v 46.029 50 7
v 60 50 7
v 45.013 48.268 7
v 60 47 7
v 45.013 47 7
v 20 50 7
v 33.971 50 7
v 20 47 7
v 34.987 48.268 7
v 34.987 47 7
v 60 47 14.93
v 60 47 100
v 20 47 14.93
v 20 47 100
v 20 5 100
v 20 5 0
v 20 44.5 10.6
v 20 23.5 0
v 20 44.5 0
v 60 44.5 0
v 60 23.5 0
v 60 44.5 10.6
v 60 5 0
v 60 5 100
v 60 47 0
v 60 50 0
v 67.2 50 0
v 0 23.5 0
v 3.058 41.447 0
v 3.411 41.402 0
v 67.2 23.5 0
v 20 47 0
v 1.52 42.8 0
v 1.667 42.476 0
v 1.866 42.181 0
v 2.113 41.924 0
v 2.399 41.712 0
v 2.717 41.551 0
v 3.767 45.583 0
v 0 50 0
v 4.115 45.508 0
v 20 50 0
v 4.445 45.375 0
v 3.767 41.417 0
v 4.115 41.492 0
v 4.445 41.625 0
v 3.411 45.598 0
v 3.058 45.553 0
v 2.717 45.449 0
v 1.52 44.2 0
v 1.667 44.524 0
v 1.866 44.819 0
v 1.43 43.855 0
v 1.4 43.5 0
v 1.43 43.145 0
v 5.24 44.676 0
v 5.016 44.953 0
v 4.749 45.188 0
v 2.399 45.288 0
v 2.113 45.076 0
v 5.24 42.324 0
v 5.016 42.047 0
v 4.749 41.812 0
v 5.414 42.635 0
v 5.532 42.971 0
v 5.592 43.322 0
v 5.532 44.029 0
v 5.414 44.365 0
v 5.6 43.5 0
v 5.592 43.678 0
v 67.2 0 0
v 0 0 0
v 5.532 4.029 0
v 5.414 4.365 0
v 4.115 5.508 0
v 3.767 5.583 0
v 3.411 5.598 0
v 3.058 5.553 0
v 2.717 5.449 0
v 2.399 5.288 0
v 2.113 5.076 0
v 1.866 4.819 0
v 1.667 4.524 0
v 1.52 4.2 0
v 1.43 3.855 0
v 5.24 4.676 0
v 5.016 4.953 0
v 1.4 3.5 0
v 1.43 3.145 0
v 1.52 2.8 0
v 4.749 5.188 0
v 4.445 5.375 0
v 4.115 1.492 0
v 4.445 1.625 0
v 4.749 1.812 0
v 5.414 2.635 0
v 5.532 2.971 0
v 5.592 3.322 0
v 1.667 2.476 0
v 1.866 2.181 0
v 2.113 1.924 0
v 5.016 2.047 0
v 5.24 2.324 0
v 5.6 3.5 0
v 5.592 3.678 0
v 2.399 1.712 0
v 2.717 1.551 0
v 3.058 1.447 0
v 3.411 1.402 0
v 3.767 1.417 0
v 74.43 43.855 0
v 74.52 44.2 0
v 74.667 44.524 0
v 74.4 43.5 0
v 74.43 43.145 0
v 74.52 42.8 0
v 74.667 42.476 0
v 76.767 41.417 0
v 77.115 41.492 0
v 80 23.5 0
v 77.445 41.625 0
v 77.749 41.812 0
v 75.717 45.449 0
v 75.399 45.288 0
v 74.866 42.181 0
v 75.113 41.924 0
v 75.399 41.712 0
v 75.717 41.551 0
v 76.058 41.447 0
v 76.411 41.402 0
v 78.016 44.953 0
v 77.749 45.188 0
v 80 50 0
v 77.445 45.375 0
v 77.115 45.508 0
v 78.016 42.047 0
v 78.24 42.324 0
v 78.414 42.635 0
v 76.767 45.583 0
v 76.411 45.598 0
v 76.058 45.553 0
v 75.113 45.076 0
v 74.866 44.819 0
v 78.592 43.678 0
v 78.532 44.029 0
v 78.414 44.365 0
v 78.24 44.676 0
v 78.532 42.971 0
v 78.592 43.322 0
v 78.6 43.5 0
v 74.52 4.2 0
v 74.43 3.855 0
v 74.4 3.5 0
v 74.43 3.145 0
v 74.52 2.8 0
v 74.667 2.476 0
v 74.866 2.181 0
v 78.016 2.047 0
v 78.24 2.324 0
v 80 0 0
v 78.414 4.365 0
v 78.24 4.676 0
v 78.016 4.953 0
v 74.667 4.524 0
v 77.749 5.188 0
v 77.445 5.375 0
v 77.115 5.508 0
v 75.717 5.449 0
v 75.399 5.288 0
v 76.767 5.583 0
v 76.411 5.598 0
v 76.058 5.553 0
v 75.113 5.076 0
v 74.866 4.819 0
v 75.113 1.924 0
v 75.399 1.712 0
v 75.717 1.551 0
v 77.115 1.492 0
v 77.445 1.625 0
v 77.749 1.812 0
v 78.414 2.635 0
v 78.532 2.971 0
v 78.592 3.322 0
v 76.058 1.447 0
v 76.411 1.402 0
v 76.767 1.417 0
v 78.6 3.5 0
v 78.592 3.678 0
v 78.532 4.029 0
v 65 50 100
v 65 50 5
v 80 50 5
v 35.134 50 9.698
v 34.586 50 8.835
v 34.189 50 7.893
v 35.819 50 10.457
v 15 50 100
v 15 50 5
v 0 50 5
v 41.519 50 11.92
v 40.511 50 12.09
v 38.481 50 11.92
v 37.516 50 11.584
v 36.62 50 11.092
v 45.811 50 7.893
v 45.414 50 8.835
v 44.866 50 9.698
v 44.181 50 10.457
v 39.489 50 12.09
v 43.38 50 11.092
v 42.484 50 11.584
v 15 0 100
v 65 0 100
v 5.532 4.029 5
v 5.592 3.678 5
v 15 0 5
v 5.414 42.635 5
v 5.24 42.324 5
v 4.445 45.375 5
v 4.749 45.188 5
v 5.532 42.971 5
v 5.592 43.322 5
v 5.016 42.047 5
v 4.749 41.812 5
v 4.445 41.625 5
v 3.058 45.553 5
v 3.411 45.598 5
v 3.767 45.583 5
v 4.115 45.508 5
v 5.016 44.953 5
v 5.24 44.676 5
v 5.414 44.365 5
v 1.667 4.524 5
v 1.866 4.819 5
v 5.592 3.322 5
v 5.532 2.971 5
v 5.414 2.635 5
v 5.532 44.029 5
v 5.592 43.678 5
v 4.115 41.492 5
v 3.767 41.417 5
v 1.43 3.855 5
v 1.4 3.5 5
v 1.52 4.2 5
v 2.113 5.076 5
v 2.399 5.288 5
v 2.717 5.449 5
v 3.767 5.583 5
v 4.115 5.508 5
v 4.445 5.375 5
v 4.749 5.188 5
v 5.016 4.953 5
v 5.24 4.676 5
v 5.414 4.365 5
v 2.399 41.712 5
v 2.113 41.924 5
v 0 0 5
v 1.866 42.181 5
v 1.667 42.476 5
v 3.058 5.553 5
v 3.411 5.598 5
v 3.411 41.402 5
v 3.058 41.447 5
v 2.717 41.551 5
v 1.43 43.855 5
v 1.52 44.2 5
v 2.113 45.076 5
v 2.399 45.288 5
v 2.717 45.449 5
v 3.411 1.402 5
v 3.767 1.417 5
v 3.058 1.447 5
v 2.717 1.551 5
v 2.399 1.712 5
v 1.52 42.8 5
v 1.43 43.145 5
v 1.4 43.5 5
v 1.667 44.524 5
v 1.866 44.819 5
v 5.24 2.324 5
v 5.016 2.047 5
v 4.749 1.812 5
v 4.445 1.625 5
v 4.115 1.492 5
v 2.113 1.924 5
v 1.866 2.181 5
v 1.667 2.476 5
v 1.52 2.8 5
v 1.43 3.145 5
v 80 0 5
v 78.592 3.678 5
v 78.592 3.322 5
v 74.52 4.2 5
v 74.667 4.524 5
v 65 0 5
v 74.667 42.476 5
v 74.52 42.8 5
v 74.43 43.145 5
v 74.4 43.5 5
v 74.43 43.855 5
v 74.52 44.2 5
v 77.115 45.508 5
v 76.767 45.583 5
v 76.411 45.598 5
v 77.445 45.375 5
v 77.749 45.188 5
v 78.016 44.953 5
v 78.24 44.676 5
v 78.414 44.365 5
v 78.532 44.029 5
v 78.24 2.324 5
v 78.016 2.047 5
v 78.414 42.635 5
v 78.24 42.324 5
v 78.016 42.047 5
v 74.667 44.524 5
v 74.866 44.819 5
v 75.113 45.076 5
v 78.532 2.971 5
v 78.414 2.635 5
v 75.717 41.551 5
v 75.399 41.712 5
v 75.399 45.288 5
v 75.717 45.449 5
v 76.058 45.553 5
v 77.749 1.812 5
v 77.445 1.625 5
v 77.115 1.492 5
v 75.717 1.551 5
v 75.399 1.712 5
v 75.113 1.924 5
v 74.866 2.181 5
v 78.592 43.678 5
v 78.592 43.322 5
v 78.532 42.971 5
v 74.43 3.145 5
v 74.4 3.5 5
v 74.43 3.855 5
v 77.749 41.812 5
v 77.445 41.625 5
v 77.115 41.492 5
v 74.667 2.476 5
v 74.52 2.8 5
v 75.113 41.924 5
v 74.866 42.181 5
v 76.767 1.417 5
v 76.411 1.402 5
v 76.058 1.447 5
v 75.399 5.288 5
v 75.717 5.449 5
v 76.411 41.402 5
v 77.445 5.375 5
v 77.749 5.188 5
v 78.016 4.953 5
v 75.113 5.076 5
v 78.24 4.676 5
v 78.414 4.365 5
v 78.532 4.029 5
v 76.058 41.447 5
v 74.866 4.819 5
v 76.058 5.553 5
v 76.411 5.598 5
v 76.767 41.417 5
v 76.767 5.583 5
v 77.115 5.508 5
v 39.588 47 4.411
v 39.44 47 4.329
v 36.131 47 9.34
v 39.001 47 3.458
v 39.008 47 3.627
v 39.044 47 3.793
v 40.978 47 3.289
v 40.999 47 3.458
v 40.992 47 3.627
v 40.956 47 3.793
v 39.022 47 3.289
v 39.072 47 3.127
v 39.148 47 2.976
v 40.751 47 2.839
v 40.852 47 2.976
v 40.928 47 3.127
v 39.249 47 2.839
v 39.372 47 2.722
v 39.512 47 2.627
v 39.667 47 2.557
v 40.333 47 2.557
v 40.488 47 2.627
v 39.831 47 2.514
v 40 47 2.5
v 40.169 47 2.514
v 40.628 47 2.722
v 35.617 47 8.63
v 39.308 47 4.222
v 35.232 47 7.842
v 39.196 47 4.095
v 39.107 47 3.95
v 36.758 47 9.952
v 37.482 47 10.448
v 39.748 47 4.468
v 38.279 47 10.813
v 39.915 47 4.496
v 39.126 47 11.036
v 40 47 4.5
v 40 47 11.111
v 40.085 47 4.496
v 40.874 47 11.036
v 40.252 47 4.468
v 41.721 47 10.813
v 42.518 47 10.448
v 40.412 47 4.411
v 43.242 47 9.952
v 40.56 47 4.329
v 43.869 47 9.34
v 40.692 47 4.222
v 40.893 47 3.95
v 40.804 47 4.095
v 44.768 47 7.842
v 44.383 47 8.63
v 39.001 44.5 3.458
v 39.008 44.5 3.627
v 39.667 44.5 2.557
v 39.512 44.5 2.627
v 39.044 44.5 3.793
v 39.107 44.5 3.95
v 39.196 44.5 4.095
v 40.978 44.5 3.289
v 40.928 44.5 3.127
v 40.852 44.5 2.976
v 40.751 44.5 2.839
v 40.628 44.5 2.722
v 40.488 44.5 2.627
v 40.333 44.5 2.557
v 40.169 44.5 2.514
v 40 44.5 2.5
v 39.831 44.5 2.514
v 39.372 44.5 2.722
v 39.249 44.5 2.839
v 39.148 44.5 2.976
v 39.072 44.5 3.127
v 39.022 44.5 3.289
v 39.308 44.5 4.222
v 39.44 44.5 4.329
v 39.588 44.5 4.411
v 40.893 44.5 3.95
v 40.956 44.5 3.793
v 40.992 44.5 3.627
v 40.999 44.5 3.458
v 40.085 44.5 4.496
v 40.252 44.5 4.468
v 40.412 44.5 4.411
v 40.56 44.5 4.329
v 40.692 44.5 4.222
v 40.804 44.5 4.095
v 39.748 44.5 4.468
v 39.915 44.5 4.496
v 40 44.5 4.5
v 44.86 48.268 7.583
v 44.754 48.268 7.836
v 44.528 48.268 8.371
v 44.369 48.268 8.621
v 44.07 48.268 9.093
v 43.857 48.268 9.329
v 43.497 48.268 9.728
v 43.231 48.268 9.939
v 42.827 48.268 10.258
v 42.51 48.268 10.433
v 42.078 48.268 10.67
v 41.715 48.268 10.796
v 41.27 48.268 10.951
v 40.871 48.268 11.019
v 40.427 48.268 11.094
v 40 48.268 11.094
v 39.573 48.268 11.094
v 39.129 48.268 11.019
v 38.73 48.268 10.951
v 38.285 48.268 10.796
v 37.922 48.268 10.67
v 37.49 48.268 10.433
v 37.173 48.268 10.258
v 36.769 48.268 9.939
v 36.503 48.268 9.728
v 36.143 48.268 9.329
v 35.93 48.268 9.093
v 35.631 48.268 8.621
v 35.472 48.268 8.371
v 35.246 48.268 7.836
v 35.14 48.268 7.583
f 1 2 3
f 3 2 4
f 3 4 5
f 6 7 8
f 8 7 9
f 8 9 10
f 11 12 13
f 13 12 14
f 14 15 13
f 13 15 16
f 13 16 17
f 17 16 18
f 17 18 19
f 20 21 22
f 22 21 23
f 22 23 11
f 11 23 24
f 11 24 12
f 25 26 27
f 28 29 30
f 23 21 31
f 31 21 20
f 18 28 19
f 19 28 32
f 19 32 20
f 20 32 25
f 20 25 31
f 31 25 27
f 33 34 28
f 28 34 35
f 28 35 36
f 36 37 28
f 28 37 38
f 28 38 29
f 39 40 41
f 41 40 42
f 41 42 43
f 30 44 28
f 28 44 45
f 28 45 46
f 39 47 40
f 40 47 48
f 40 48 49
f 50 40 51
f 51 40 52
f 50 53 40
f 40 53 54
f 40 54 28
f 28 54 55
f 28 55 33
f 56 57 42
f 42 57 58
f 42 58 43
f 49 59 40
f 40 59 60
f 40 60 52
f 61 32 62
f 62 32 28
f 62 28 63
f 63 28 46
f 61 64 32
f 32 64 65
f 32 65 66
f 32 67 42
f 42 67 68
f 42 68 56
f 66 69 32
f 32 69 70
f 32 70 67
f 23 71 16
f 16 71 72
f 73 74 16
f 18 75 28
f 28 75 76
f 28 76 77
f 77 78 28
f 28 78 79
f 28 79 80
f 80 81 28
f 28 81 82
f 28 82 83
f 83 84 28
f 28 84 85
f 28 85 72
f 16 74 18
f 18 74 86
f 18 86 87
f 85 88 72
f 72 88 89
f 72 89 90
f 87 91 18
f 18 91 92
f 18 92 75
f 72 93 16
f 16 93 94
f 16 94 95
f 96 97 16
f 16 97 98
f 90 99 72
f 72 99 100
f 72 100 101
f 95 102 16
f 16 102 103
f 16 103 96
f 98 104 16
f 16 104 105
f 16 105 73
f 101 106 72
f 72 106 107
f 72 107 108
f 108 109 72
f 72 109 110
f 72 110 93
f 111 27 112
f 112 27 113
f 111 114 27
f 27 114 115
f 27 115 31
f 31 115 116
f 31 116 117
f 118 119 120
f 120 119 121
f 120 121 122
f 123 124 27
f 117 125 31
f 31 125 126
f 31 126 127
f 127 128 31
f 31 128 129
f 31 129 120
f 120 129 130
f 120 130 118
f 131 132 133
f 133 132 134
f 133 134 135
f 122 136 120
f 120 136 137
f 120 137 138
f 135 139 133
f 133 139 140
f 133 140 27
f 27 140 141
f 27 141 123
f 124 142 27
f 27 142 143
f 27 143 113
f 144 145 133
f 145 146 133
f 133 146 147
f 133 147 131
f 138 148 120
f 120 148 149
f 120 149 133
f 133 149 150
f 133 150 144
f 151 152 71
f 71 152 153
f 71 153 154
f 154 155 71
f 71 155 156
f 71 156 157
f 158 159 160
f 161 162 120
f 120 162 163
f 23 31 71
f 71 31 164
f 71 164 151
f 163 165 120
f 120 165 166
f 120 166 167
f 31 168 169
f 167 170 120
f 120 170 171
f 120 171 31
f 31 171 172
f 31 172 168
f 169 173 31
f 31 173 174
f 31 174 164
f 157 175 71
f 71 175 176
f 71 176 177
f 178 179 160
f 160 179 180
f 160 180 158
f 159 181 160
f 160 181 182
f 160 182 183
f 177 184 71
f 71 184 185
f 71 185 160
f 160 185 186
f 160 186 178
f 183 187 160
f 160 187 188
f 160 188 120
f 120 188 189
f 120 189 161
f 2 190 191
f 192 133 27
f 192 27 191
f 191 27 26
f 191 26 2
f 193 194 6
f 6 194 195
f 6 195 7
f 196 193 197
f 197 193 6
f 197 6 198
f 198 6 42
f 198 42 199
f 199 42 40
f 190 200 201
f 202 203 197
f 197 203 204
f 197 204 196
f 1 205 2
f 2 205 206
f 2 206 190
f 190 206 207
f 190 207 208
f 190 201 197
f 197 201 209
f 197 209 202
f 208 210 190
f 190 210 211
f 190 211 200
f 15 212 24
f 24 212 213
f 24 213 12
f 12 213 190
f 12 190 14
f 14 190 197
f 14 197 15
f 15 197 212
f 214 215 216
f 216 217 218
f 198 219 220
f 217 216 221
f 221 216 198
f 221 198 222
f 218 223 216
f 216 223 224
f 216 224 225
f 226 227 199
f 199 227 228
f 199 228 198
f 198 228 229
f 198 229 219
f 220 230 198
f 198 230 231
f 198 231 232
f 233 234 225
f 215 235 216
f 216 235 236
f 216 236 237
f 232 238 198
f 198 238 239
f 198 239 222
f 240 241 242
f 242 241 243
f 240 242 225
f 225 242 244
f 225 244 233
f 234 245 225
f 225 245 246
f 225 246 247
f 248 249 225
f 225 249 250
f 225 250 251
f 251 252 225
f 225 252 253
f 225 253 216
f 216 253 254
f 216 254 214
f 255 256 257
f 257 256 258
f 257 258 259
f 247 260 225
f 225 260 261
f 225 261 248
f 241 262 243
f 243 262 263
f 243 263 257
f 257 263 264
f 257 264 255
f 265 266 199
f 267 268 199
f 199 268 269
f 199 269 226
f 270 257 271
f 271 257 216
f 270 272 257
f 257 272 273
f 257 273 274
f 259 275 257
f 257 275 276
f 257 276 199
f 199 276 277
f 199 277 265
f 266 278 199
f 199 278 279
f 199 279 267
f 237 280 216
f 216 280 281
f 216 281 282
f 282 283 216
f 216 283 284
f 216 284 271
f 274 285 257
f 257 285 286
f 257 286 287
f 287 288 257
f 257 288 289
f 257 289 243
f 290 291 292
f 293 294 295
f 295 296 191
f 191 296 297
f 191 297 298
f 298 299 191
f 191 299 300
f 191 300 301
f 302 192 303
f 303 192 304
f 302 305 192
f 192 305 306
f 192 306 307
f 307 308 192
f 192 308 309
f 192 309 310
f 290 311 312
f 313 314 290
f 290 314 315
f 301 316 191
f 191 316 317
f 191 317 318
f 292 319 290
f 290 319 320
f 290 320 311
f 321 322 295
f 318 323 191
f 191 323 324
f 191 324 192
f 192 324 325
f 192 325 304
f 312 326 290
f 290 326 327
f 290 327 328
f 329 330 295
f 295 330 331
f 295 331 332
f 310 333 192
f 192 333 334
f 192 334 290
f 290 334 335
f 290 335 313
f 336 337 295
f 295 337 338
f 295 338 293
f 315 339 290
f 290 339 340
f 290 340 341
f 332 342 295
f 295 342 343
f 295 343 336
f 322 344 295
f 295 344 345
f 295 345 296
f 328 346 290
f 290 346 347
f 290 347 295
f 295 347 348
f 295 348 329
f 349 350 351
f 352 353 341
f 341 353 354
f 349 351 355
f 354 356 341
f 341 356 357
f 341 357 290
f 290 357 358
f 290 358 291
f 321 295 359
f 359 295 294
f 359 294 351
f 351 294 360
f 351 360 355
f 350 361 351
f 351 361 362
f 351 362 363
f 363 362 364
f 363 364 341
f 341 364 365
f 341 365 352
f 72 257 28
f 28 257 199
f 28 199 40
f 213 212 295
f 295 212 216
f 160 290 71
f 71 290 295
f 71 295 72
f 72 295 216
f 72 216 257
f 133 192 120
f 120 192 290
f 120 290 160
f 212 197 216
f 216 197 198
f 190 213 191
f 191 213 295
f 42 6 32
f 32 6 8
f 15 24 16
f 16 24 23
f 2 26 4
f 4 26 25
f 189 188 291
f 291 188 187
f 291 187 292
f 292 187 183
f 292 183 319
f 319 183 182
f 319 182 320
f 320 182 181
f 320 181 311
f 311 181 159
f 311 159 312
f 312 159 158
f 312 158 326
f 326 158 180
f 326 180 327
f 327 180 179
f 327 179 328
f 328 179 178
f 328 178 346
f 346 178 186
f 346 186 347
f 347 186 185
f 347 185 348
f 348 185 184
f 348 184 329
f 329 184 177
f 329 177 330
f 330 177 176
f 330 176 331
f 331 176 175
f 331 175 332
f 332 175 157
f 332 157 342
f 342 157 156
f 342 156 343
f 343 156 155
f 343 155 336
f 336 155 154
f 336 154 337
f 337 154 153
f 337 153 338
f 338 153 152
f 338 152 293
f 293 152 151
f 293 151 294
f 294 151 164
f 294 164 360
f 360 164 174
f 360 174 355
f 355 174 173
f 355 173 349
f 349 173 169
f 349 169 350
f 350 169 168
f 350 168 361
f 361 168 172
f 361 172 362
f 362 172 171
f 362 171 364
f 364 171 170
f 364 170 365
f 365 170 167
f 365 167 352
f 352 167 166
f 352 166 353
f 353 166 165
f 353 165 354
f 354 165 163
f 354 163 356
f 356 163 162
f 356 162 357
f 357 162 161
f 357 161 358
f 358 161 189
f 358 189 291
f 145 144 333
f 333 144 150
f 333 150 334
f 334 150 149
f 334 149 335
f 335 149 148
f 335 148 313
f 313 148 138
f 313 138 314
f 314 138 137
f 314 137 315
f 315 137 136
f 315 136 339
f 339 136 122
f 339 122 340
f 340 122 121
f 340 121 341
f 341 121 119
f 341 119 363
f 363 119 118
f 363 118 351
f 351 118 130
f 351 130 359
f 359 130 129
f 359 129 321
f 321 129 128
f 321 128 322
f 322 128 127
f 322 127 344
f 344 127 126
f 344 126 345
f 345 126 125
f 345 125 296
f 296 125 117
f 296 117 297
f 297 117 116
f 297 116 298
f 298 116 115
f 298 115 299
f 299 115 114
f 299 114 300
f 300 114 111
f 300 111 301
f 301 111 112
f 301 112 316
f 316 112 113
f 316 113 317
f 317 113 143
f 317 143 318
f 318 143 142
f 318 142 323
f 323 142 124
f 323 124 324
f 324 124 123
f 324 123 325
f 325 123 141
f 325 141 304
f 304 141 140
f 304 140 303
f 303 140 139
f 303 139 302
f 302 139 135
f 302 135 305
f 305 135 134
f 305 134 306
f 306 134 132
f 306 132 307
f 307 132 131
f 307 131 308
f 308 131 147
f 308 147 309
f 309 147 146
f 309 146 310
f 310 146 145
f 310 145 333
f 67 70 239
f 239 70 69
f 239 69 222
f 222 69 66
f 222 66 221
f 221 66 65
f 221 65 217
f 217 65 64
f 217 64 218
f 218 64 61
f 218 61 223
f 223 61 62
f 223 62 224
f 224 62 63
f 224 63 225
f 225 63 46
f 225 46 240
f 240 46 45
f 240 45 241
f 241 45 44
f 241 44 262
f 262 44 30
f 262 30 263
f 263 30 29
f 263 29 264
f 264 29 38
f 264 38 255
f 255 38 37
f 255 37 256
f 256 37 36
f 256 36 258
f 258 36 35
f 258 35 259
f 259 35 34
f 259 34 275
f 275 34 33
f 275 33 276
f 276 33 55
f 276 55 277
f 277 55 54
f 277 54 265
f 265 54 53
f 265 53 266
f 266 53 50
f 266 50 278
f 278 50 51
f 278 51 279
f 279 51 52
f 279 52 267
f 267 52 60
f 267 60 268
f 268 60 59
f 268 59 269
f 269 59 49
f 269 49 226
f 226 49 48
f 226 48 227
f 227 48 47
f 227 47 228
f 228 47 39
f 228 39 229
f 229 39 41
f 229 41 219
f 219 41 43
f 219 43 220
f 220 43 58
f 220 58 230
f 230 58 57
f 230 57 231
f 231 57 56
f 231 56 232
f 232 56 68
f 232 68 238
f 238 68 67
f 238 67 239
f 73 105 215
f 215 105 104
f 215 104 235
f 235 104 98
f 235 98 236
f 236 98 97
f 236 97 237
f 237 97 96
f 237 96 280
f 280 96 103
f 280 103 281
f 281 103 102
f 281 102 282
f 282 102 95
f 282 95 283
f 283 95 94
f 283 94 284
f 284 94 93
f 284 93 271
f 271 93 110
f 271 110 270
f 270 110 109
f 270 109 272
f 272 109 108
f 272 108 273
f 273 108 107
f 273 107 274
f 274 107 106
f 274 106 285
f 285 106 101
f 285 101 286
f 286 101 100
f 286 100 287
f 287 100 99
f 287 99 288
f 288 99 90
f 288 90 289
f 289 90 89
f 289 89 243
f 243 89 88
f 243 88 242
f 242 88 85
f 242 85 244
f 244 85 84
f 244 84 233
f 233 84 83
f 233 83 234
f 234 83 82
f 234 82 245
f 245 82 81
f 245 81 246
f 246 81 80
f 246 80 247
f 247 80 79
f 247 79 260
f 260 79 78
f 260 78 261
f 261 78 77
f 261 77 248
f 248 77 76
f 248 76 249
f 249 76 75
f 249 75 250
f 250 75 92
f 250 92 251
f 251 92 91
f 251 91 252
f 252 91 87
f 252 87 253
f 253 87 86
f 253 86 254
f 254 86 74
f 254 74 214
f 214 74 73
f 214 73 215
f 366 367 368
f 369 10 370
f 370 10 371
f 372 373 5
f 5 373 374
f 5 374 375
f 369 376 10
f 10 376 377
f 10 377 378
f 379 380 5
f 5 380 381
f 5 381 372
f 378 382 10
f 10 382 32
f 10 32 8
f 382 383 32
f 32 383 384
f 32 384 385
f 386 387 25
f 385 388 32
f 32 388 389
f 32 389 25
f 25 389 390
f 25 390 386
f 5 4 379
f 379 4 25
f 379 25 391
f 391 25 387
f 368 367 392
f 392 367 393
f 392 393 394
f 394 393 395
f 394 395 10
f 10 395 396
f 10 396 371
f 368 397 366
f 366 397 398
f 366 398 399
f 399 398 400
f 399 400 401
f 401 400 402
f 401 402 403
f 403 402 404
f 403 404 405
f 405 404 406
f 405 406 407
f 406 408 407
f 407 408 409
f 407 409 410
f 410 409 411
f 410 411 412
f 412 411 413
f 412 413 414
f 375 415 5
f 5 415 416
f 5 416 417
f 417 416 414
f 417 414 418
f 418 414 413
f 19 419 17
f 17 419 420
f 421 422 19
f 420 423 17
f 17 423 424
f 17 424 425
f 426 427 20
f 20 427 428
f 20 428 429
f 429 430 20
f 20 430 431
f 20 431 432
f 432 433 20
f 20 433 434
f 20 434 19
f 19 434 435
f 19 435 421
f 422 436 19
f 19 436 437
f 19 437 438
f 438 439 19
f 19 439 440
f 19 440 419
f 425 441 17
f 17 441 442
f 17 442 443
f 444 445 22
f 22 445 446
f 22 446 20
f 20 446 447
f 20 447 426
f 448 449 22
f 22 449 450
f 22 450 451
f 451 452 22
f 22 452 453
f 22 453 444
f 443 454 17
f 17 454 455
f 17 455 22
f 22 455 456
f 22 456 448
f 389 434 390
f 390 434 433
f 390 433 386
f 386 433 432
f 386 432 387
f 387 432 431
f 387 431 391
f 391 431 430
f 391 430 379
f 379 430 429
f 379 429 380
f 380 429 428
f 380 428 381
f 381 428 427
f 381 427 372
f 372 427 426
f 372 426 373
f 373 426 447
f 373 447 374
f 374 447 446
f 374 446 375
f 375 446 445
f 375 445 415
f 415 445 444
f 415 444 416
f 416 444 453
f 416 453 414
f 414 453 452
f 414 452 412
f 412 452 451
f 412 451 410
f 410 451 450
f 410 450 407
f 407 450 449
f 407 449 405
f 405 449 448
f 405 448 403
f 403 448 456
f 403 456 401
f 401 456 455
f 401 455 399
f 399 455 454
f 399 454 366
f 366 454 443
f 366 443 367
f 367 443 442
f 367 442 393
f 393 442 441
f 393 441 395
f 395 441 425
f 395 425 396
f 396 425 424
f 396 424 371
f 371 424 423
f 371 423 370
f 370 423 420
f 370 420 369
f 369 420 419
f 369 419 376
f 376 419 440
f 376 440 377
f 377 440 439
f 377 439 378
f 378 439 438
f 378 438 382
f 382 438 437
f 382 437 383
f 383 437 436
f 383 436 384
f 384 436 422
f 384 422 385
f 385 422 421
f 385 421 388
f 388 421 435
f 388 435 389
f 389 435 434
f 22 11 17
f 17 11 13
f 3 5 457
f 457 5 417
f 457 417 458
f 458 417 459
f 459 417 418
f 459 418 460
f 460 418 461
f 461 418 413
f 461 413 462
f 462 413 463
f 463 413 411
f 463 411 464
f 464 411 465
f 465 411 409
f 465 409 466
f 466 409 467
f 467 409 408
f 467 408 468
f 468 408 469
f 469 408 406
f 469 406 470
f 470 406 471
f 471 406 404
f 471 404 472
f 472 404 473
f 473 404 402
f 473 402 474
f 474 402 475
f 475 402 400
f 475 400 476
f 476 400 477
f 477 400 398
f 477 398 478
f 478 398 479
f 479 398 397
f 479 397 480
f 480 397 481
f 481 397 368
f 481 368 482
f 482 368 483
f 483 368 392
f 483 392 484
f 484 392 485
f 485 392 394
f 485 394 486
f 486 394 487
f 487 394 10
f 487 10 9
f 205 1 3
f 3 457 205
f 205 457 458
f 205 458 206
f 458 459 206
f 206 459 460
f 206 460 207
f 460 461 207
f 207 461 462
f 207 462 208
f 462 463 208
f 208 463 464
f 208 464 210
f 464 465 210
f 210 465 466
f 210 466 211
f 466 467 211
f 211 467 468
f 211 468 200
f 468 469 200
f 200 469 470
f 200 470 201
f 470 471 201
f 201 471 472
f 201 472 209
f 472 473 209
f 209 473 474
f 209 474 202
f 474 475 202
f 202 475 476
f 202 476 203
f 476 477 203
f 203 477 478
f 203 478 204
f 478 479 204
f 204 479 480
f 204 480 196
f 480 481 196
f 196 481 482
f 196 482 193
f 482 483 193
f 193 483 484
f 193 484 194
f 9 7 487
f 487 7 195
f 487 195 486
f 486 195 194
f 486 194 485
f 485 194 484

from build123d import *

# Parameters (mm, degrees)
SKETCH_1_W          = 80
SKETCH_1_H          = 50
EXTRUDE_1_DEPTH     = 5
SKETCH_2_W          = 50
SKETCH_2_H          = 50
EXTRUDE_2_DEPTH     = 100
SKETCH_4_W          = 40
SKETCH_4_H          = 42
CUT_EXTRUDE_1_DEPTH = 138.477270849
SKETCH_5_R          = 2.1
CUT_EXTRUDE_2_DEPTH = 10
CUT_EXTRUDE_START   = 10
SKETCH_7_W          = 40
SKETCH_7_H          = 7
CUT_EXTRUDE_7_DEPTH = 128.477270849
EXTRUDE_START       = 44.5
SKETCH_8_W          = 50
SKETCH_8_H          = 15
EXTRUDE_6_DEPTH     = 2.5
SKETCH_9_R          = 1
CUT_EXTRUDE_8_DEPTH = 128.477270849
CHAMFER_2_SIZE      = 4.4
CHAMFER_2_SIZE_2    = 2.540341184
CUT_EXTRUDE_START_2 = 47
SKETCH_14_R         = 5.11141812
CUT_EXTRUDE_9_DEPTH = 91.477270849
CHAMFER_3_SIZE      = 1
CHAMFER_3_SIZE2     = 1.732050808


with BuildPart() as part:
    # 草圖1 → 填料-伸長1 (new body)
    with BuildSketch(Plane.XY):
        with Locations((40, 25)):
            Rectangle(SKETCH_1_W, SKETCH_1_H)
    extrude(amount=EXTRUDE_1_DEPTH)

    # 草圖2 → 填料-伸長2 (add)
    with BuildSketch(Plane.XY):
        with Locations((40, 25)):
            Rectangle(SKETCH_2_W, SKETCH_2_H)
    extrude(amount=EXTRUDE_2_DEPTH)

    # 草圖4 → 除料-伸長1 (cut, through all)
    with BuildSketch(Plane.XY):
        with Locations((40, 26)):
            Rectangle(SKETCH_4_W, SKETCH_4_H)
    extrude(amount=CUT_EXTRUDE_1_DEPTH, mode=Mode.SUBTRACT)

    # 草圖5 → 除料-伸長2 (cut)
    with BuildSketch(Plane.XY):
        with Locations(Location((76.5, 3.5, 0), (0, 0, 180))):
            Circle(SKETCH_5_R)
        with Locations(Location((76.5, 43.5, 0), (0, 0, 180))):
            Circle(SKETCH_5_R)
        with Locations(Location((3.5, 3.5, 0), (0, 0, 180))):
            Circle(SKETCH_5_R)
        with Locations(Location((3.5, 43.5, 0), (0, 0, 180))):
            Circle(SKETCH_5_R)
    extrude(amount=CUT_EXTRUDE_2_DEPTH, mode=Mode.SUBTRACT)

    # 草圖7 → 除料-伸長7 (cut, through all)
    with BuildSketch(Plane(origin=(0, 0, 0), x_dir=(1, 0, 0), z_dir=(0, 1, 0)).offset(CUT_EXTRUDE_START)):
        with Locations((40, -3.5)):
            Rectangle(SKETCH_7_W, SKETCH_7_H)
    extrude(amount=CUT_EXTRUDE_7_DEPTH, mode=Mode.SUBTRACT)

    # 草圖8 → 填料-伸長6 (add)
    with BuildSketch(Plane(origin=(0, 0, 0), x_dir=(1, 0, 0), z_dir=(0, 1, 0)).offset(EXTRUDE_START)):
        with Locations((40, -7.5)):
            Rectangle(SKETCH_8_W, SKETCH_8_H)
    extrude(amount=EXTRUDE_6_DEPTH)

    # 草圖9 → 除料-伸長8 (cut, through all)
    with BuildSketch(Plane(origin=(0, 0, 0), x_dir=(1, 0, 0), z_dir=(0, 1, 0)).offset(CUT_EXTRUDE_START)):
        with Locations(Location((40, -3.5, 0), (0, 0, 270))):
            Circle(SKETCH_9_R)
    extrude(amount=CUT_EXTRUDE_8_DEPTH, mode=Mode.SUBTRACT)

    # 導角2
    # the kernel refuses this chamfer: 4.4, 2.540341184 mm, written as the material it takes off along each edge
    with BuildSketch(Plane(origin=(60, 44.5, 15), x_dir=(0, -0.01932676561270091, -0.9998132206222078), z_dir=(-1, 0, 0))) as chamfer_2_piece_1_section:
        Polygon((CHAMFER_2_SIZE * 0.999813220622, -CHAMFER_2_SIZE * 0.0193267656127), (-CHAMFER_2_SIZE_2 * 0.019326765616, -CHAMFER_2_SIZE_2 * 0.999813220793), (0, 0), align=None)
    chamfer_2_piece_1 = extrude(amount=40, mode=Mode.PRIVATE)
    chamfer_2_piece_1 = split(chamfer_2_piece_1, bisect_by=Plane(origin=(40, 47, 13.532969249), z_dir=(0, -1, 0)), keep=Keep.TOP, mode=Mode.PRIVATE)
    add(chamfer_2_piece_1, mode=Mode.SUBTRACT)

    # 草圖14 → 除料-伸長9 (cut, through all)
    with BuildSketch(Plane(origin=(0, 0, 0), x_dir=(1, 0, 0), z_dir=(0, 1, 0)).offset(CUT_EXTRUDE_START_2)):
        with Locations((40, -6)):
            Circle(SKETCH_14_R)
    extrude(amount=CUT_EXTRUDE_9_DEPTH, mode=Mode.SUBTRACT)

    # 導角3
    chamfer_3_edges = [part.edges().sort_by_distance(p)[0] for p in [
        (40, 50, 11.11141812),
    ]]
    chamfer_3_side = [part.faces().sort_by_distance(p)[0] for p in [
        (40, 50, 51.481645062),
    ]]
    chamfer(chamfer_3_edges, length=CHAMFER_3_SIZE, length2=CHAMFER_3_SIZE2, reference=chamfer_3_side[0])


solid = part.part
